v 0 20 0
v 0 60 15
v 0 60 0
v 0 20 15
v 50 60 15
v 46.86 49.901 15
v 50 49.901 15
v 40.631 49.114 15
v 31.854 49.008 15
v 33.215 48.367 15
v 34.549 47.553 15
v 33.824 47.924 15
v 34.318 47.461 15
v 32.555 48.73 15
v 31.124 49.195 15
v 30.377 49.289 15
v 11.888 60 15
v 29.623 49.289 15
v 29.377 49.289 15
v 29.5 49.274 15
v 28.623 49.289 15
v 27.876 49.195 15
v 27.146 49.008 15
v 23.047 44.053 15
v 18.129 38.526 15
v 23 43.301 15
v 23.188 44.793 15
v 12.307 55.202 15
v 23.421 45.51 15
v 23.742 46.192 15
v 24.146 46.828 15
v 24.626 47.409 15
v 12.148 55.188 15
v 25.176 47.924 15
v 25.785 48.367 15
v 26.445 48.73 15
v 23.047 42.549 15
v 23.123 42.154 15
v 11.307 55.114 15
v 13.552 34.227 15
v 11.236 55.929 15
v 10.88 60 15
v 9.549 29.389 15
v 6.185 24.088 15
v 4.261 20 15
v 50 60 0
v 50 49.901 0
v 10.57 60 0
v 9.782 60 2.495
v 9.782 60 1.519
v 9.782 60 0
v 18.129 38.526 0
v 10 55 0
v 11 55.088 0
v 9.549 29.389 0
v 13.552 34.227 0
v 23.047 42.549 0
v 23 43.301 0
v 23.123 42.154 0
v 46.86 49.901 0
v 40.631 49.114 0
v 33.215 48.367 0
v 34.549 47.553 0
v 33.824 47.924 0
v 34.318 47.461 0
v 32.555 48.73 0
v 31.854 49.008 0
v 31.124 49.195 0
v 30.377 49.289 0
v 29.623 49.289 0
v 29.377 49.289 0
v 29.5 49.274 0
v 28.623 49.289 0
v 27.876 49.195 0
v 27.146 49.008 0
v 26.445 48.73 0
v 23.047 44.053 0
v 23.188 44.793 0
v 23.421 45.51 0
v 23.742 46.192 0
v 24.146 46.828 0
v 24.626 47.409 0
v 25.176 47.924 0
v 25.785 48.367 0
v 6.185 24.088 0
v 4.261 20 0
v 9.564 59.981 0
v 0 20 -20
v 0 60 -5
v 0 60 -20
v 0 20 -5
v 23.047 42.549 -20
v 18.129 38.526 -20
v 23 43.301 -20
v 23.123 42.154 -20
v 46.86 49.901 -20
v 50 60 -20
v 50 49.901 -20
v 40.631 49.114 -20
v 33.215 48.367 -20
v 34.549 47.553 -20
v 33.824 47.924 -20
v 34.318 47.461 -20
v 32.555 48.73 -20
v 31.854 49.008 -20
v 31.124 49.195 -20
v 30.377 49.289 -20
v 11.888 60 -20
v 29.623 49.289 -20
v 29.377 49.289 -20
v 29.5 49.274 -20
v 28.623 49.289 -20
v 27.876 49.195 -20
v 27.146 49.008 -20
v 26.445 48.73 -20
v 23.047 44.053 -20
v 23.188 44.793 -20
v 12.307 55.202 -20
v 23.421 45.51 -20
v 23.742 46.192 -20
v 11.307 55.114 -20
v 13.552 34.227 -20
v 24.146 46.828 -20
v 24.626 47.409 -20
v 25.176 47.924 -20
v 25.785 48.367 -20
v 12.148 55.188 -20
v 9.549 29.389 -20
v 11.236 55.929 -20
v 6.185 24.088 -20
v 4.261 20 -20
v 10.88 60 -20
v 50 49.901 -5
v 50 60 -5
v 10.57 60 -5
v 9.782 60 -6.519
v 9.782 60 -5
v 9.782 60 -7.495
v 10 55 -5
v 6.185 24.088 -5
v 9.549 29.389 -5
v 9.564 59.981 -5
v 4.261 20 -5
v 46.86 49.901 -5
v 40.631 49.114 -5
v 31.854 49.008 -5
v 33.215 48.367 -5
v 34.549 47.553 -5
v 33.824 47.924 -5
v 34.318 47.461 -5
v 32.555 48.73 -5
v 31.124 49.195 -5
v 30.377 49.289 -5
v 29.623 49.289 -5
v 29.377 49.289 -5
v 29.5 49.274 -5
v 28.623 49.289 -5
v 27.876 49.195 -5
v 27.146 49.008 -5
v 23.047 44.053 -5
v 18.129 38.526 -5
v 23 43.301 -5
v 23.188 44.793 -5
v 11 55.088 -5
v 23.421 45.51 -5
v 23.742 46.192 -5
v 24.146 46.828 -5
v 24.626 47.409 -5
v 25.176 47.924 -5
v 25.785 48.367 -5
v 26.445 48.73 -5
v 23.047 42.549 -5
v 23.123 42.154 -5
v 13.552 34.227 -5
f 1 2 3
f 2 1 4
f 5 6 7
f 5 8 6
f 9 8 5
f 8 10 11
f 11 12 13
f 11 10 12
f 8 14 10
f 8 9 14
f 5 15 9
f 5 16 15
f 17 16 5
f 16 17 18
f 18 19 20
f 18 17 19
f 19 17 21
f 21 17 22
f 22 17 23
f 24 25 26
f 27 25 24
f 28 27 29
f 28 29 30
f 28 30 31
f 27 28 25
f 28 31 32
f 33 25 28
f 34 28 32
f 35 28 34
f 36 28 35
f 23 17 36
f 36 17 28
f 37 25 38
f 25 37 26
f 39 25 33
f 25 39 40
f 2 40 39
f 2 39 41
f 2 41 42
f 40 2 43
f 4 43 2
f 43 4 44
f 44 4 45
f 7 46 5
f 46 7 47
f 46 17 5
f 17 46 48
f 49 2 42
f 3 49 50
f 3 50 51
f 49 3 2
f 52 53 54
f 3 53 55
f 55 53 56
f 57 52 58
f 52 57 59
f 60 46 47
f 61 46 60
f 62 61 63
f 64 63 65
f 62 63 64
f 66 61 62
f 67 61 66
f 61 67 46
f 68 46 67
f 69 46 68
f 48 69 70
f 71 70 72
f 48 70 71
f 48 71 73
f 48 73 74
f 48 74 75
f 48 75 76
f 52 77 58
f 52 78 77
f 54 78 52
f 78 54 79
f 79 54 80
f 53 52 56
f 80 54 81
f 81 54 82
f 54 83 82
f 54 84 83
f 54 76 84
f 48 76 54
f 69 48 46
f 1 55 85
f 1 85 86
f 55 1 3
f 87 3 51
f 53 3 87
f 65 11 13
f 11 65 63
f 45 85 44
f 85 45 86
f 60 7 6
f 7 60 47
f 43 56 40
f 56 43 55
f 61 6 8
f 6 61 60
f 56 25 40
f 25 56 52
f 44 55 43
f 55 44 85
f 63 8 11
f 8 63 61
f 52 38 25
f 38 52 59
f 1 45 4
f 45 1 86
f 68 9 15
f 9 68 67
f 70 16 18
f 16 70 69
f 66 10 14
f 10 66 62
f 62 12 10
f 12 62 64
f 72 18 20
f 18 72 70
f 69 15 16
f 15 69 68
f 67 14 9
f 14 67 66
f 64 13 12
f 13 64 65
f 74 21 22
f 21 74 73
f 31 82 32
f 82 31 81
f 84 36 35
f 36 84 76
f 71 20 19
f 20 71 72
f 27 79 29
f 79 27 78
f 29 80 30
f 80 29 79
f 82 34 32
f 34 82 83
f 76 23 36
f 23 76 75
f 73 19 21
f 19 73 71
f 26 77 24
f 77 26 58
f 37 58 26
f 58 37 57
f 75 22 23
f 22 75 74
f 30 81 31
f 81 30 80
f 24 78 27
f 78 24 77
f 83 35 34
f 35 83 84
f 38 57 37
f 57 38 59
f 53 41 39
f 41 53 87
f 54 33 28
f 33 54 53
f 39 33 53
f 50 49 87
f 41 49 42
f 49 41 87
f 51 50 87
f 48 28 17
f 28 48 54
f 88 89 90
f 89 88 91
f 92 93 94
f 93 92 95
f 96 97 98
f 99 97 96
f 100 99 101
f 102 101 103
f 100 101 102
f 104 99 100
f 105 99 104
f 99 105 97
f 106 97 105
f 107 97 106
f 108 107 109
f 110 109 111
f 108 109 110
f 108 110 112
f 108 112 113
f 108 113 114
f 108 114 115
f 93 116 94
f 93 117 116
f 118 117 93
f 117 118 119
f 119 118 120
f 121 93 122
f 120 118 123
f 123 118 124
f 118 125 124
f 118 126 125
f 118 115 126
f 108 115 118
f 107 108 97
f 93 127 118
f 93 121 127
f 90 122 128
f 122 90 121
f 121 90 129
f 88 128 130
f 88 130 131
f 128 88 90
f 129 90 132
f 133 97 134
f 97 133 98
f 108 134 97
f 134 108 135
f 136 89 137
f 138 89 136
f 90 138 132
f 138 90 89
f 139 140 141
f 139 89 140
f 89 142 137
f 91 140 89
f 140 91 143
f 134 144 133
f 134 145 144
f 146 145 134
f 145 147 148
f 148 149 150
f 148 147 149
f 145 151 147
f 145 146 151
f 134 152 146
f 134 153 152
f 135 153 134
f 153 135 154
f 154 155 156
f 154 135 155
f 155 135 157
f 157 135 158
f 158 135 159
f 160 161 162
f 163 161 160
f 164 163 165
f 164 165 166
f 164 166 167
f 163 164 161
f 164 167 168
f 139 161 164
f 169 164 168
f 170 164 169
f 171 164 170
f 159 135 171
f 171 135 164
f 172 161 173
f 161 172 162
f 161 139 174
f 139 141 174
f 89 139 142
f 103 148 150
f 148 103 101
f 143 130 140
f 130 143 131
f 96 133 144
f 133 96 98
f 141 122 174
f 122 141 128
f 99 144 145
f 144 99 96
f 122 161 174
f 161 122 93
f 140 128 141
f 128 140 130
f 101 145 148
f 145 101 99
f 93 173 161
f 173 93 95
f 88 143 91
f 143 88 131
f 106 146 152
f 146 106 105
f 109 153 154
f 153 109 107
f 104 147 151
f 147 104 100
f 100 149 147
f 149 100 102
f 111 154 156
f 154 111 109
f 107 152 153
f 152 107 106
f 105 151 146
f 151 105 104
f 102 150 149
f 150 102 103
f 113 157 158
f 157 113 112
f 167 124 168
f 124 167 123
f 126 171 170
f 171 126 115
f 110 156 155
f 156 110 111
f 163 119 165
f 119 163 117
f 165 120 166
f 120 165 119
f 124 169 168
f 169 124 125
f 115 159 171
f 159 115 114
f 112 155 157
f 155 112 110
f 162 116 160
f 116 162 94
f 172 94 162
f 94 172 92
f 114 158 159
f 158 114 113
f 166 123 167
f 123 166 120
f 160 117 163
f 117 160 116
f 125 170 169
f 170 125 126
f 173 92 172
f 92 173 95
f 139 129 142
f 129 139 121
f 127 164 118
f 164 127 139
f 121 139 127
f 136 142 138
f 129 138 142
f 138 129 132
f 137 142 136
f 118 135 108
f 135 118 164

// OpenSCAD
$fn=50;
breite = 15;
tiefe=50;
hoehe=60;

module halter() {
    difference(){
    // Hauptteil
    difference(){
        cube([tiefe,hoehe,breite]);
        #translate([tiefe, 0, 0]) cylinder(d=2*tiefe, h=breite);
        #cube([5,20,breite]);
        }
    // Griff-Loch
    # translate([30,(tiefe)*cos(30),0]) cylinder(d=12, h=breite+10);
    # translate([30-1,(tiefe)*cos(30),0]) cylinder(d=12, h=breite+10);
    // Karten-Slot
    #translate([10,hoehe-5,0]) rotate([0,5,5])cube([1,5,breite+3]);
    }
}
//links
halter();
//rechts
 mirror([0,0,1]) translate([0,0,5]) halter();
